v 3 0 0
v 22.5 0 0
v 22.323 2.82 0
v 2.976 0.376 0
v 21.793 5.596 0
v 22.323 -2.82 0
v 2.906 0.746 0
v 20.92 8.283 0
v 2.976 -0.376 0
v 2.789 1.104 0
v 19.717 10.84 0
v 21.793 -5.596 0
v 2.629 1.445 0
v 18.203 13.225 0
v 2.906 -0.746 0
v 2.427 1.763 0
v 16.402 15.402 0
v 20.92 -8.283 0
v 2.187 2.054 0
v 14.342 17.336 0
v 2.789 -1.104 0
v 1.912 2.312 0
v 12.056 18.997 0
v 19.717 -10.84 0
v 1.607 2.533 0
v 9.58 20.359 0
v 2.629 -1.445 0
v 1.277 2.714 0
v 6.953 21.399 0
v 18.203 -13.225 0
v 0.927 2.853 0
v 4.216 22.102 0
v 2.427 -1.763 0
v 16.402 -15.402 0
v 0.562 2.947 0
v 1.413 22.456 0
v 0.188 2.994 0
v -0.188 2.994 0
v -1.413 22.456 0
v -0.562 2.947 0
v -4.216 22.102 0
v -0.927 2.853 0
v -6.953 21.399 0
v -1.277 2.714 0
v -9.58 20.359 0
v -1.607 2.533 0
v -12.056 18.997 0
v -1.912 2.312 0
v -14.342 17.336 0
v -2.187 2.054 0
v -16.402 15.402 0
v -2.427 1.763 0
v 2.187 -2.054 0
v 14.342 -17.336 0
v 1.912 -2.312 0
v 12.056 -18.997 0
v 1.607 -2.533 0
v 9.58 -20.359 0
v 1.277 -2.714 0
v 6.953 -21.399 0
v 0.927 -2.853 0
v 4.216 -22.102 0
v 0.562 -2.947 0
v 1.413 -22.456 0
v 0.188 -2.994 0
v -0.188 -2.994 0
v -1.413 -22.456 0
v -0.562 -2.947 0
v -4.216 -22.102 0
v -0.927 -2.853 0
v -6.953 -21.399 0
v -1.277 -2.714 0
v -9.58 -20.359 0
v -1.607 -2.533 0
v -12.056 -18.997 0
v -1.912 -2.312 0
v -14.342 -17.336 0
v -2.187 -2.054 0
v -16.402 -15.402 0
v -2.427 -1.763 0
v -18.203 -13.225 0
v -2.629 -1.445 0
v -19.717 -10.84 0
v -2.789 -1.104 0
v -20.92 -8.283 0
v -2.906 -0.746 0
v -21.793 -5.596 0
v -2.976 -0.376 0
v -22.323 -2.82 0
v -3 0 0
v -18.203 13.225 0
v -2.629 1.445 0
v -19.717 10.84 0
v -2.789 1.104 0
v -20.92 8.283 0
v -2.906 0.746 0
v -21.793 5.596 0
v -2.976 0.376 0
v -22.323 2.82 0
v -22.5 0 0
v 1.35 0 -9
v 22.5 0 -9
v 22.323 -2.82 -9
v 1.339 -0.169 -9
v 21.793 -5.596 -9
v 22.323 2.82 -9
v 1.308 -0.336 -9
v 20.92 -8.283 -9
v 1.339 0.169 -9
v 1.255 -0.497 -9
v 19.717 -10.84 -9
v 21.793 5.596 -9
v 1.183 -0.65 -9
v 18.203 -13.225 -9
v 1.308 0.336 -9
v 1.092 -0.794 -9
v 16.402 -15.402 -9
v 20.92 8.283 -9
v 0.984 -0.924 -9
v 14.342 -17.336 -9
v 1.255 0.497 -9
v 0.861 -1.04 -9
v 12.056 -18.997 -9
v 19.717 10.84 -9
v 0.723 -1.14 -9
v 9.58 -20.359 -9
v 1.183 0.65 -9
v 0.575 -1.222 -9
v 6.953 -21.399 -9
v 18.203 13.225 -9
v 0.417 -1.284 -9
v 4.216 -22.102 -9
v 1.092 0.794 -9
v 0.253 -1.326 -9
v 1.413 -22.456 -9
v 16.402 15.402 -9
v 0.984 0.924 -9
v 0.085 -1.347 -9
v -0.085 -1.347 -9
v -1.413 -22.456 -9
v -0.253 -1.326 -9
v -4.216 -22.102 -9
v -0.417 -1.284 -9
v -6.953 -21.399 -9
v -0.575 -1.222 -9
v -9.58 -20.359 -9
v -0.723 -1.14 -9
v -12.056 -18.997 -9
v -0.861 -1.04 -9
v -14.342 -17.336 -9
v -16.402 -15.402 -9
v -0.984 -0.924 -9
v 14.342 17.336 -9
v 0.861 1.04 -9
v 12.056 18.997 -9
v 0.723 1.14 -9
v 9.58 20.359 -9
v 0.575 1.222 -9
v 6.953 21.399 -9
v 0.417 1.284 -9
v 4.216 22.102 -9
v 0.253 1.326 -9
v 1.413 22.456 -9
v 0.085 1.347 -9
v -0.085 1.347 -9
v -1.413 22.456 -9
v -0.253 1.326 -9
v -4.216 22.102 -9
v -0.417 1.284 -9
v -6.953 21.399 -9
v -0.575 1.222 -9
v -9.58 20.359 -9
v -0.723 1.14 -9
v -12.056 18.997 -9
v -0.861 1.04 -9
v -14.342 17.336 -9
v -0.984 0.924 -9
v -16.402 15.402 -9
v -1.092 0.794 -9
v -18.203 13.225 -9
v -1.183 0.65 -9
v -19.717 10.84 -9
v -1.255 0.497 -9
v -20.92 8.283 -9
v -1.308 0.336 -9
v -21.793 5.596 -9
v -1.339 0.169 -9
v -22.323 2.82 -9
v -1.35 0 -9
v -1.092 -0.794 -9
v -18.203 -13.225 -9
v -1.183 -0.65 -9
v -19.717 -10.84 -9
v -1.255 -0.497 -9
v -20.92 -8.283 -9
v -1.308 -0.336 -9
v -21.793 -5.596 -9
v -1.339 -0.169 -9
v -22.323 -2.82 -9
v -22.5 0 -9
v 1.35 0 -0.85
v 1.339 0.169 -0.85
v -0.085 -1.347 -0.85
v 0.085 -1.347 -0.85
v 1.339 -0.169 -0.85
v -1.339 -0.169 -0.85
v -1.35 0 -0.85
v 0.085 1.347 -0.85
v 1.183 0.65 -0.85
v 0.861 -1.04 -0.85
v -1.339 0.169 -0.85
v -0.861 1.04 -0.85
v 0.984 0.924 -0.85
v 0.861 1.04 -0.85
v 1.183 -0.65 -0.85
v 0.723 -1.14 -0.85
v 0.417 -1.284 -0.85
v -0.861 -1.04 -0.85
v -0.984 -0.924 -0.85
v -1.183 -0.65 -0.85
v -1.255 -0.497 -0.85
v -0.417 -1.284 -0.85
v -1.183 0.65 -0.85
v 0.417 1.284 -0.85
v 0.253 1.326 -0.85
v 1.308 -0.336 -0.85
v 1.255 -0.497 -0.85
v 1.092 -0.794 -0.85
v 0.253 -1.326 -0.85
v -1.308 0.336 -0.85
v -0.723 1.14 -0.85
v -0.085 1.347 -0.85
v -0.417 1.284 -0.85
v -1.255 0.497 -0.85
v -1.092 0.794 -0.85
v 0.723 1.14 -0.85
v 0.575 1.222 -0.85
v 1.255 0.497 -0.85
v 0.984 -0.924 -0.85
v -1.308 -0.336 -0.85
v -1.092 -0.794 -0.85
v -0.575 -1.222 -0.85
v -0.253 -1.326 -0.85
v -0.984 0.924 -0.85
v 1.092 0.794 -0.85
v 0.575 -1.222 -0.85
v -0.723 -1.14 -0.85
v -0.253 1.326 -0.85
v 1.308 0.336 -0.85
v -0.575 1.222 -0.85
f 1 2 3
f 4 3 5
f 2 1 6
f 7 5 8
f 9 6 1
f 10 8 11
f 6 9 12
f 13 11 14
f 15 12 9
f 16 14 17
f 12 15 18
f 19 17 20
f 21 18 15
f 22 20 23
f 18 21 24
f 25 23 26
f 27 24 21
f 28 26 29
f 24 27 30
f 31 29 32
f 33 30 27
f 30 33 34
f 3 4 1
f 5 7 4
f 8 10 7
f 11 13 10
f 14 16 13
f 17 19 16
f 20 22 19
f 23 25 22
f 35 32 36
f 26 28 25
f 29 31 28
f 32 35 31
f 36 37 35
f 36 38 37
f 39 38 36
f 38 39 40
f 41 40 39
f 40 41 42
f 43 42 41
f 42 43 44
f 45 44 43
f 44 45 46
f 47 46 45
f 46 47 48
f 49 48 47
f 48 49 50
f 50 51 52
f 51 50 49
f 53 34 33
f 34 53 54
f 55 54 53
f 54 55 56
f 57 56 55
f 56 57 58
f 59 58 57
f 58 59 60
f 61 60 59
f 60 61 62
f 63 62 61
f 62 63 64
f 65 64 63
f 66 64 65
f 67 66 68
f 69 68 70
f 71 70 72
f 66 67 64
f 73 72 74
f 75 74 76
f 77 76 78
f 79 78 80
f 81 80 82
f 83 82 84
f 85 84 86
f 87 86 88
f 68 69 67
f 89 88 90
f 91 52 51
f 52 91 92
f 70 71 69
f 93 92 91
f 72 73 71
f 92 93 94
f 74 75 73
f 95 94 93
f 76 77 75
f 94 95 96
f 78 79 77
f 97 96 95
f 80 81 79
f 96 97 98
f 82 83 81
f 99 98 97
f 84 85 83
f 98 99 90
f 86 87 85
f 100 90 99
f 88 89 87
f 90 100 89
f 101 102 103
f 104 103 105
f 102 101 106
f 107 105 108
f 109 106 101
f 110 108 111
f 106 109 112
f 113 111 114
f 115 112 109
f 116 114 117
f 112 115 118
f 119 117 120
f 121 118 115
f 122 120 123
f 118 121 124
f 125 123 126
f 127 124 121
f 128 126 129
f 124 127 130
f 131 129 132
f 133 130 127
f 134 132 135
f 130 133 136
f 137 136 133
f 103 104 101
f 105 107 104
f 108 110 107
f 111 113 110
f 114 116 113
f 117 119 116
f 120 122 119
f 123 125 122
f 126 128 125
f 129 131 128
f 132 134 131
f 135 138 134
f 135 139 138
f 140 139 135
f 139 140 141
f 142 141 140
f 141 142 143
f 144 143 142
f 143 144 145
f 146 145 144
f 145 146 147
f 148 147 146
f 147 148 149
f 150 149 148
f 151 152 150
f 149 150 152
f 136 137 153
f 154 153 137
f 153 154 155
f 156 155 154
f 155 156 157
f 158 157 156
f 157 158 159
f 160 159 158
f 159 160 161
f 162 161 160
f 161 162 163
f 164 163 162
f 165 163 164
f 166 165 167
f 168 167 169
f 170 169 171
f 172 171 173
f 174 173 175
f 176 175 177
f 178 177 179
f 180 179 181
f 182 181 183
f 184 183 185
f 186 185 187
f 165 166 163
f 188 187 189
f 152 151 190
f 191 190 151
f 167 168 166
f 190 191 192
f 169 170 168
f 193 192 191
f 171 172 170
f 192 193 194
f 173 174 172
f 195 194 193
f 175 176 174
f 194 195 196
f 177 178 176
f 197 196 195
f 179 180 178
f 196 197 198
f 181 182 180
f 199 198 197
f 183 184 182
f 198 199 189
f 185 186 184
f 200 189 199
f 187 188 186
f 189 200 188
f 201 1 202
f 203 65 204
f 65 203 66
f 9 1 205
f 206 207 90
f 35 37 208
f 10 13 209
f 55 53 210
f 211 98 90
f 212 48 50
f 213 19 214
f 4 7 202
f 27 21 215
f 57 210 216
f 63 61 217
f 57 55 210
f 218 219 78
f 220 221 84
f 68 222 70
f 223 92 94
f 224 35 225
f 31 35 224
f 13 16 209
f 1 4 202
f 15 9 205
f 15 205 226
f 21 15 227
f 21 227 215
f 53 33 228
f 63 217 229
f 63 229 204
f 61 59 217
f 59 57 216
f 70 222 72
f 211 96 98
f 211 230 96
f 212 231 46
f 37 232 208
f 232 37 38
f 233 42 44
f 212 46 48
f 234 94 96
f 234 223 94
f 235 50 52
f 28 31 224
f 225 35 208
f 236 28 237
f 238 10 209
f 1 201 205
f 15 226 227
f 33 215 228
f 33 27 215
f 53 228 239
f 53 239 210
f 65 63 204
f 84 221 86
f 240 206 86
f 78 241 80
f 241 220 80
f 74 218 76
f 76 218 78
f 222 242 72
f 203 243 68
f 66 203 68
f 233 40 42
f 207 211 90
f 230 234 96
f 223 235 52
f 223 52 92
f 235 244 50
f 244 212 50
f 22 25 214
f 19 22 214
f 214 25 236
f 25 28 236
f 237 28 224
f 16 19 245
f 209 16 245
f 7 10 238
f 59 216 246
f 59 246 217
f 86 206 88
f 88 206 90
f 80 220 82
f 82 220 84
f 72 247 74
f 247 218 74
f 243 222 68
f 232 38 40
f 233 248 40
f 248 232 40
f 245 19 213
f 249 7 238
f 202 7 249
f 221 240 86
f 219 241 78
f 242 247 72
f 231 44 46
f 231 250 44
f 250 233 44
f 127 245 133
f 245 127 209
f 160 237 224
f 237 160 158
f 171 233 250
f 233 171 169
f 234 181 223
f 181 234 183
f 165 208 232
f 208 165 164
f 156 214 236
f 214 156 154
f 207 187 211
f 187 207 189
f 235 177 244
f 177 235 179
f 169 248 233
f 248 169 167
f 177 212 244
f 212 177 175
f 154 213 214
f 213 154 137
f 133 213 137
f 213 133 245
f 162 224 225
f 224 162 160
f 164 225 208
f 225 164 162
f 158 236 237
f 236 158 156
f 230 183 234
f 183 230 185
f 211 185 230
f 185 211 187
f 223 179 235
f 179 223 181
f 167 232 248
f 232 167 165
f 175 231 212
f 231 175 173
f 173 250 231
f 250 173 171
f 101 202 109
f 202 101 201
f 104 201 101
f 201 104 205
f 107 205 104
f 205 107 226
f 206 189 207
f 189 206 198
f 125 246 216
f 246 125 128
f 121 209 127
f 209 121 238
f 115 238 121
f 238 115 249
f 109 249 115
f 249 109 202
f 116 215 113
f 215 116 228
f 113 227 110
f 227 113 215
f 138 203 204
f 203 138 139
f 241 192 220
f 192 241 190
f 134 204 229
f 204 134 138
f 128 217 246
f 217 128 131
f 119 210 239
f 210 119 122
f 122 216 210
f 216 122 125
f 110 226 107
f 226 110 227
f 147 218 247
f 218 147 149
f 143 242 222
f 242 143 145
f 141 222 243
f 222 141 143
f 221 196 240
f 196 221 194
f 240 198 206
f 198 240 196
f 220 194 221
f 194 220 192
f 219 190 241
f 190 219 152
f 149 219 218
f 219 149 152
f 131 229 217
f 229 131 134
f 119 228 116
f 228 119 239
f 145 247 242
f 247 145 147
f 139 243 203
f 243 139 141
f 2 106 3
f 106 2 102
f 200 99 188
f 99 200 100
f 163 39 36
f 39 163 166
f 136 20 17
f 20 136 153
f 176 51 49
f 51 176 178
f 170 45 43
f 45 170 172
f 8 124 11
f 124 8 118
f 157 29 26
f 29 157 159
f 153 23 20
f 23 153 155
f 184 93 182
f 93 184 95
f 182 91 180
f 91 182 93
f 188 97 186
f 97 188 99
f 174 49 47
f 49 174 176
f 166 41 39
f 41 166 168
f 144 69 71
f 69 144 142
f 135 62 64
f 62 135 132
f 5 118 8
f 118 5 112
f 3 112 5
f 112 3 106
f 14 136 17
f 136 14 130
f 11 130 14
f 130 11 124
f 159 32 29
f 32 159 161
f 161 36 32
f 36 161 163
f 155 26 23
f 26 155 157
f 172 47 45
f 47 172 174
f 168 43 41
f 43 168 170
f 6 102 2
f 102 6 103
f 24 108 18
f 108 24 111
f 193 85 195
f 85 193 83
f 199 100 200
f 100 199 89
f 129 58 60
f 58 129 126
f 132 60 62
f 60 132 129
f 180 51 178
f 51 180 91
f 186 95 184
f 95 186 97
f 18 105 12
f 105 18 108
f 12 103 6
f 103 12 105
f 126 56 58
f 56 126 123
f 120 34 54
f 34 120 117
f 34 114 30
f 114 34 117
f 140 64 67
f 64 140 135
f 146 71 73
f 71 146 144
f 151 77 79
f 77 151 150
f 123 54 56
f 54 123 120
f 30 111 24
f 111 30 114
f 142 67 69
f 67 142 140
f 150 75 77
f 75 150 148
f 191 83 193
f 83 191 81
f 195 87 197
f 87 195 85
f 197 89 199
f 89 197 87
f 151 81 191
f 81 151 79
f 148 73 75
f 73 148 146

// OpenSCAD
$fn = 50;


difference() {
	union() {
		translate(v = [0, 0, -9.0000000000]) {
			cylinder(h = 9, r = 22.5000000000);
		}
	}
	union() {
		translate(v = [0, 0, 0]) {
			rotate(a = [0, 0, 0]) {
				difference() {
					union() {
						#translate(v = [0, 0, -9.0000000000]) {
							cylinder(h = 9, r = 1.0000000000);
						}
						#translate(v = [0, 0, -0.8500000000]) {
							cylinder(h = 0.8500000000, r1 = 1.3500000000, r2 = 3.0000000000);
						}
						#translate(v = [0, 0, -9.0000000000]) {
							cylinder(h = 9, r = 1.3500000000);
						}
						#translate(v = [0, 0, -9.0000000000]) {
							cylinder(h = 9, r = 1.0000000000);
						}
					}
					union();
				}
			}
		}
	}
}
